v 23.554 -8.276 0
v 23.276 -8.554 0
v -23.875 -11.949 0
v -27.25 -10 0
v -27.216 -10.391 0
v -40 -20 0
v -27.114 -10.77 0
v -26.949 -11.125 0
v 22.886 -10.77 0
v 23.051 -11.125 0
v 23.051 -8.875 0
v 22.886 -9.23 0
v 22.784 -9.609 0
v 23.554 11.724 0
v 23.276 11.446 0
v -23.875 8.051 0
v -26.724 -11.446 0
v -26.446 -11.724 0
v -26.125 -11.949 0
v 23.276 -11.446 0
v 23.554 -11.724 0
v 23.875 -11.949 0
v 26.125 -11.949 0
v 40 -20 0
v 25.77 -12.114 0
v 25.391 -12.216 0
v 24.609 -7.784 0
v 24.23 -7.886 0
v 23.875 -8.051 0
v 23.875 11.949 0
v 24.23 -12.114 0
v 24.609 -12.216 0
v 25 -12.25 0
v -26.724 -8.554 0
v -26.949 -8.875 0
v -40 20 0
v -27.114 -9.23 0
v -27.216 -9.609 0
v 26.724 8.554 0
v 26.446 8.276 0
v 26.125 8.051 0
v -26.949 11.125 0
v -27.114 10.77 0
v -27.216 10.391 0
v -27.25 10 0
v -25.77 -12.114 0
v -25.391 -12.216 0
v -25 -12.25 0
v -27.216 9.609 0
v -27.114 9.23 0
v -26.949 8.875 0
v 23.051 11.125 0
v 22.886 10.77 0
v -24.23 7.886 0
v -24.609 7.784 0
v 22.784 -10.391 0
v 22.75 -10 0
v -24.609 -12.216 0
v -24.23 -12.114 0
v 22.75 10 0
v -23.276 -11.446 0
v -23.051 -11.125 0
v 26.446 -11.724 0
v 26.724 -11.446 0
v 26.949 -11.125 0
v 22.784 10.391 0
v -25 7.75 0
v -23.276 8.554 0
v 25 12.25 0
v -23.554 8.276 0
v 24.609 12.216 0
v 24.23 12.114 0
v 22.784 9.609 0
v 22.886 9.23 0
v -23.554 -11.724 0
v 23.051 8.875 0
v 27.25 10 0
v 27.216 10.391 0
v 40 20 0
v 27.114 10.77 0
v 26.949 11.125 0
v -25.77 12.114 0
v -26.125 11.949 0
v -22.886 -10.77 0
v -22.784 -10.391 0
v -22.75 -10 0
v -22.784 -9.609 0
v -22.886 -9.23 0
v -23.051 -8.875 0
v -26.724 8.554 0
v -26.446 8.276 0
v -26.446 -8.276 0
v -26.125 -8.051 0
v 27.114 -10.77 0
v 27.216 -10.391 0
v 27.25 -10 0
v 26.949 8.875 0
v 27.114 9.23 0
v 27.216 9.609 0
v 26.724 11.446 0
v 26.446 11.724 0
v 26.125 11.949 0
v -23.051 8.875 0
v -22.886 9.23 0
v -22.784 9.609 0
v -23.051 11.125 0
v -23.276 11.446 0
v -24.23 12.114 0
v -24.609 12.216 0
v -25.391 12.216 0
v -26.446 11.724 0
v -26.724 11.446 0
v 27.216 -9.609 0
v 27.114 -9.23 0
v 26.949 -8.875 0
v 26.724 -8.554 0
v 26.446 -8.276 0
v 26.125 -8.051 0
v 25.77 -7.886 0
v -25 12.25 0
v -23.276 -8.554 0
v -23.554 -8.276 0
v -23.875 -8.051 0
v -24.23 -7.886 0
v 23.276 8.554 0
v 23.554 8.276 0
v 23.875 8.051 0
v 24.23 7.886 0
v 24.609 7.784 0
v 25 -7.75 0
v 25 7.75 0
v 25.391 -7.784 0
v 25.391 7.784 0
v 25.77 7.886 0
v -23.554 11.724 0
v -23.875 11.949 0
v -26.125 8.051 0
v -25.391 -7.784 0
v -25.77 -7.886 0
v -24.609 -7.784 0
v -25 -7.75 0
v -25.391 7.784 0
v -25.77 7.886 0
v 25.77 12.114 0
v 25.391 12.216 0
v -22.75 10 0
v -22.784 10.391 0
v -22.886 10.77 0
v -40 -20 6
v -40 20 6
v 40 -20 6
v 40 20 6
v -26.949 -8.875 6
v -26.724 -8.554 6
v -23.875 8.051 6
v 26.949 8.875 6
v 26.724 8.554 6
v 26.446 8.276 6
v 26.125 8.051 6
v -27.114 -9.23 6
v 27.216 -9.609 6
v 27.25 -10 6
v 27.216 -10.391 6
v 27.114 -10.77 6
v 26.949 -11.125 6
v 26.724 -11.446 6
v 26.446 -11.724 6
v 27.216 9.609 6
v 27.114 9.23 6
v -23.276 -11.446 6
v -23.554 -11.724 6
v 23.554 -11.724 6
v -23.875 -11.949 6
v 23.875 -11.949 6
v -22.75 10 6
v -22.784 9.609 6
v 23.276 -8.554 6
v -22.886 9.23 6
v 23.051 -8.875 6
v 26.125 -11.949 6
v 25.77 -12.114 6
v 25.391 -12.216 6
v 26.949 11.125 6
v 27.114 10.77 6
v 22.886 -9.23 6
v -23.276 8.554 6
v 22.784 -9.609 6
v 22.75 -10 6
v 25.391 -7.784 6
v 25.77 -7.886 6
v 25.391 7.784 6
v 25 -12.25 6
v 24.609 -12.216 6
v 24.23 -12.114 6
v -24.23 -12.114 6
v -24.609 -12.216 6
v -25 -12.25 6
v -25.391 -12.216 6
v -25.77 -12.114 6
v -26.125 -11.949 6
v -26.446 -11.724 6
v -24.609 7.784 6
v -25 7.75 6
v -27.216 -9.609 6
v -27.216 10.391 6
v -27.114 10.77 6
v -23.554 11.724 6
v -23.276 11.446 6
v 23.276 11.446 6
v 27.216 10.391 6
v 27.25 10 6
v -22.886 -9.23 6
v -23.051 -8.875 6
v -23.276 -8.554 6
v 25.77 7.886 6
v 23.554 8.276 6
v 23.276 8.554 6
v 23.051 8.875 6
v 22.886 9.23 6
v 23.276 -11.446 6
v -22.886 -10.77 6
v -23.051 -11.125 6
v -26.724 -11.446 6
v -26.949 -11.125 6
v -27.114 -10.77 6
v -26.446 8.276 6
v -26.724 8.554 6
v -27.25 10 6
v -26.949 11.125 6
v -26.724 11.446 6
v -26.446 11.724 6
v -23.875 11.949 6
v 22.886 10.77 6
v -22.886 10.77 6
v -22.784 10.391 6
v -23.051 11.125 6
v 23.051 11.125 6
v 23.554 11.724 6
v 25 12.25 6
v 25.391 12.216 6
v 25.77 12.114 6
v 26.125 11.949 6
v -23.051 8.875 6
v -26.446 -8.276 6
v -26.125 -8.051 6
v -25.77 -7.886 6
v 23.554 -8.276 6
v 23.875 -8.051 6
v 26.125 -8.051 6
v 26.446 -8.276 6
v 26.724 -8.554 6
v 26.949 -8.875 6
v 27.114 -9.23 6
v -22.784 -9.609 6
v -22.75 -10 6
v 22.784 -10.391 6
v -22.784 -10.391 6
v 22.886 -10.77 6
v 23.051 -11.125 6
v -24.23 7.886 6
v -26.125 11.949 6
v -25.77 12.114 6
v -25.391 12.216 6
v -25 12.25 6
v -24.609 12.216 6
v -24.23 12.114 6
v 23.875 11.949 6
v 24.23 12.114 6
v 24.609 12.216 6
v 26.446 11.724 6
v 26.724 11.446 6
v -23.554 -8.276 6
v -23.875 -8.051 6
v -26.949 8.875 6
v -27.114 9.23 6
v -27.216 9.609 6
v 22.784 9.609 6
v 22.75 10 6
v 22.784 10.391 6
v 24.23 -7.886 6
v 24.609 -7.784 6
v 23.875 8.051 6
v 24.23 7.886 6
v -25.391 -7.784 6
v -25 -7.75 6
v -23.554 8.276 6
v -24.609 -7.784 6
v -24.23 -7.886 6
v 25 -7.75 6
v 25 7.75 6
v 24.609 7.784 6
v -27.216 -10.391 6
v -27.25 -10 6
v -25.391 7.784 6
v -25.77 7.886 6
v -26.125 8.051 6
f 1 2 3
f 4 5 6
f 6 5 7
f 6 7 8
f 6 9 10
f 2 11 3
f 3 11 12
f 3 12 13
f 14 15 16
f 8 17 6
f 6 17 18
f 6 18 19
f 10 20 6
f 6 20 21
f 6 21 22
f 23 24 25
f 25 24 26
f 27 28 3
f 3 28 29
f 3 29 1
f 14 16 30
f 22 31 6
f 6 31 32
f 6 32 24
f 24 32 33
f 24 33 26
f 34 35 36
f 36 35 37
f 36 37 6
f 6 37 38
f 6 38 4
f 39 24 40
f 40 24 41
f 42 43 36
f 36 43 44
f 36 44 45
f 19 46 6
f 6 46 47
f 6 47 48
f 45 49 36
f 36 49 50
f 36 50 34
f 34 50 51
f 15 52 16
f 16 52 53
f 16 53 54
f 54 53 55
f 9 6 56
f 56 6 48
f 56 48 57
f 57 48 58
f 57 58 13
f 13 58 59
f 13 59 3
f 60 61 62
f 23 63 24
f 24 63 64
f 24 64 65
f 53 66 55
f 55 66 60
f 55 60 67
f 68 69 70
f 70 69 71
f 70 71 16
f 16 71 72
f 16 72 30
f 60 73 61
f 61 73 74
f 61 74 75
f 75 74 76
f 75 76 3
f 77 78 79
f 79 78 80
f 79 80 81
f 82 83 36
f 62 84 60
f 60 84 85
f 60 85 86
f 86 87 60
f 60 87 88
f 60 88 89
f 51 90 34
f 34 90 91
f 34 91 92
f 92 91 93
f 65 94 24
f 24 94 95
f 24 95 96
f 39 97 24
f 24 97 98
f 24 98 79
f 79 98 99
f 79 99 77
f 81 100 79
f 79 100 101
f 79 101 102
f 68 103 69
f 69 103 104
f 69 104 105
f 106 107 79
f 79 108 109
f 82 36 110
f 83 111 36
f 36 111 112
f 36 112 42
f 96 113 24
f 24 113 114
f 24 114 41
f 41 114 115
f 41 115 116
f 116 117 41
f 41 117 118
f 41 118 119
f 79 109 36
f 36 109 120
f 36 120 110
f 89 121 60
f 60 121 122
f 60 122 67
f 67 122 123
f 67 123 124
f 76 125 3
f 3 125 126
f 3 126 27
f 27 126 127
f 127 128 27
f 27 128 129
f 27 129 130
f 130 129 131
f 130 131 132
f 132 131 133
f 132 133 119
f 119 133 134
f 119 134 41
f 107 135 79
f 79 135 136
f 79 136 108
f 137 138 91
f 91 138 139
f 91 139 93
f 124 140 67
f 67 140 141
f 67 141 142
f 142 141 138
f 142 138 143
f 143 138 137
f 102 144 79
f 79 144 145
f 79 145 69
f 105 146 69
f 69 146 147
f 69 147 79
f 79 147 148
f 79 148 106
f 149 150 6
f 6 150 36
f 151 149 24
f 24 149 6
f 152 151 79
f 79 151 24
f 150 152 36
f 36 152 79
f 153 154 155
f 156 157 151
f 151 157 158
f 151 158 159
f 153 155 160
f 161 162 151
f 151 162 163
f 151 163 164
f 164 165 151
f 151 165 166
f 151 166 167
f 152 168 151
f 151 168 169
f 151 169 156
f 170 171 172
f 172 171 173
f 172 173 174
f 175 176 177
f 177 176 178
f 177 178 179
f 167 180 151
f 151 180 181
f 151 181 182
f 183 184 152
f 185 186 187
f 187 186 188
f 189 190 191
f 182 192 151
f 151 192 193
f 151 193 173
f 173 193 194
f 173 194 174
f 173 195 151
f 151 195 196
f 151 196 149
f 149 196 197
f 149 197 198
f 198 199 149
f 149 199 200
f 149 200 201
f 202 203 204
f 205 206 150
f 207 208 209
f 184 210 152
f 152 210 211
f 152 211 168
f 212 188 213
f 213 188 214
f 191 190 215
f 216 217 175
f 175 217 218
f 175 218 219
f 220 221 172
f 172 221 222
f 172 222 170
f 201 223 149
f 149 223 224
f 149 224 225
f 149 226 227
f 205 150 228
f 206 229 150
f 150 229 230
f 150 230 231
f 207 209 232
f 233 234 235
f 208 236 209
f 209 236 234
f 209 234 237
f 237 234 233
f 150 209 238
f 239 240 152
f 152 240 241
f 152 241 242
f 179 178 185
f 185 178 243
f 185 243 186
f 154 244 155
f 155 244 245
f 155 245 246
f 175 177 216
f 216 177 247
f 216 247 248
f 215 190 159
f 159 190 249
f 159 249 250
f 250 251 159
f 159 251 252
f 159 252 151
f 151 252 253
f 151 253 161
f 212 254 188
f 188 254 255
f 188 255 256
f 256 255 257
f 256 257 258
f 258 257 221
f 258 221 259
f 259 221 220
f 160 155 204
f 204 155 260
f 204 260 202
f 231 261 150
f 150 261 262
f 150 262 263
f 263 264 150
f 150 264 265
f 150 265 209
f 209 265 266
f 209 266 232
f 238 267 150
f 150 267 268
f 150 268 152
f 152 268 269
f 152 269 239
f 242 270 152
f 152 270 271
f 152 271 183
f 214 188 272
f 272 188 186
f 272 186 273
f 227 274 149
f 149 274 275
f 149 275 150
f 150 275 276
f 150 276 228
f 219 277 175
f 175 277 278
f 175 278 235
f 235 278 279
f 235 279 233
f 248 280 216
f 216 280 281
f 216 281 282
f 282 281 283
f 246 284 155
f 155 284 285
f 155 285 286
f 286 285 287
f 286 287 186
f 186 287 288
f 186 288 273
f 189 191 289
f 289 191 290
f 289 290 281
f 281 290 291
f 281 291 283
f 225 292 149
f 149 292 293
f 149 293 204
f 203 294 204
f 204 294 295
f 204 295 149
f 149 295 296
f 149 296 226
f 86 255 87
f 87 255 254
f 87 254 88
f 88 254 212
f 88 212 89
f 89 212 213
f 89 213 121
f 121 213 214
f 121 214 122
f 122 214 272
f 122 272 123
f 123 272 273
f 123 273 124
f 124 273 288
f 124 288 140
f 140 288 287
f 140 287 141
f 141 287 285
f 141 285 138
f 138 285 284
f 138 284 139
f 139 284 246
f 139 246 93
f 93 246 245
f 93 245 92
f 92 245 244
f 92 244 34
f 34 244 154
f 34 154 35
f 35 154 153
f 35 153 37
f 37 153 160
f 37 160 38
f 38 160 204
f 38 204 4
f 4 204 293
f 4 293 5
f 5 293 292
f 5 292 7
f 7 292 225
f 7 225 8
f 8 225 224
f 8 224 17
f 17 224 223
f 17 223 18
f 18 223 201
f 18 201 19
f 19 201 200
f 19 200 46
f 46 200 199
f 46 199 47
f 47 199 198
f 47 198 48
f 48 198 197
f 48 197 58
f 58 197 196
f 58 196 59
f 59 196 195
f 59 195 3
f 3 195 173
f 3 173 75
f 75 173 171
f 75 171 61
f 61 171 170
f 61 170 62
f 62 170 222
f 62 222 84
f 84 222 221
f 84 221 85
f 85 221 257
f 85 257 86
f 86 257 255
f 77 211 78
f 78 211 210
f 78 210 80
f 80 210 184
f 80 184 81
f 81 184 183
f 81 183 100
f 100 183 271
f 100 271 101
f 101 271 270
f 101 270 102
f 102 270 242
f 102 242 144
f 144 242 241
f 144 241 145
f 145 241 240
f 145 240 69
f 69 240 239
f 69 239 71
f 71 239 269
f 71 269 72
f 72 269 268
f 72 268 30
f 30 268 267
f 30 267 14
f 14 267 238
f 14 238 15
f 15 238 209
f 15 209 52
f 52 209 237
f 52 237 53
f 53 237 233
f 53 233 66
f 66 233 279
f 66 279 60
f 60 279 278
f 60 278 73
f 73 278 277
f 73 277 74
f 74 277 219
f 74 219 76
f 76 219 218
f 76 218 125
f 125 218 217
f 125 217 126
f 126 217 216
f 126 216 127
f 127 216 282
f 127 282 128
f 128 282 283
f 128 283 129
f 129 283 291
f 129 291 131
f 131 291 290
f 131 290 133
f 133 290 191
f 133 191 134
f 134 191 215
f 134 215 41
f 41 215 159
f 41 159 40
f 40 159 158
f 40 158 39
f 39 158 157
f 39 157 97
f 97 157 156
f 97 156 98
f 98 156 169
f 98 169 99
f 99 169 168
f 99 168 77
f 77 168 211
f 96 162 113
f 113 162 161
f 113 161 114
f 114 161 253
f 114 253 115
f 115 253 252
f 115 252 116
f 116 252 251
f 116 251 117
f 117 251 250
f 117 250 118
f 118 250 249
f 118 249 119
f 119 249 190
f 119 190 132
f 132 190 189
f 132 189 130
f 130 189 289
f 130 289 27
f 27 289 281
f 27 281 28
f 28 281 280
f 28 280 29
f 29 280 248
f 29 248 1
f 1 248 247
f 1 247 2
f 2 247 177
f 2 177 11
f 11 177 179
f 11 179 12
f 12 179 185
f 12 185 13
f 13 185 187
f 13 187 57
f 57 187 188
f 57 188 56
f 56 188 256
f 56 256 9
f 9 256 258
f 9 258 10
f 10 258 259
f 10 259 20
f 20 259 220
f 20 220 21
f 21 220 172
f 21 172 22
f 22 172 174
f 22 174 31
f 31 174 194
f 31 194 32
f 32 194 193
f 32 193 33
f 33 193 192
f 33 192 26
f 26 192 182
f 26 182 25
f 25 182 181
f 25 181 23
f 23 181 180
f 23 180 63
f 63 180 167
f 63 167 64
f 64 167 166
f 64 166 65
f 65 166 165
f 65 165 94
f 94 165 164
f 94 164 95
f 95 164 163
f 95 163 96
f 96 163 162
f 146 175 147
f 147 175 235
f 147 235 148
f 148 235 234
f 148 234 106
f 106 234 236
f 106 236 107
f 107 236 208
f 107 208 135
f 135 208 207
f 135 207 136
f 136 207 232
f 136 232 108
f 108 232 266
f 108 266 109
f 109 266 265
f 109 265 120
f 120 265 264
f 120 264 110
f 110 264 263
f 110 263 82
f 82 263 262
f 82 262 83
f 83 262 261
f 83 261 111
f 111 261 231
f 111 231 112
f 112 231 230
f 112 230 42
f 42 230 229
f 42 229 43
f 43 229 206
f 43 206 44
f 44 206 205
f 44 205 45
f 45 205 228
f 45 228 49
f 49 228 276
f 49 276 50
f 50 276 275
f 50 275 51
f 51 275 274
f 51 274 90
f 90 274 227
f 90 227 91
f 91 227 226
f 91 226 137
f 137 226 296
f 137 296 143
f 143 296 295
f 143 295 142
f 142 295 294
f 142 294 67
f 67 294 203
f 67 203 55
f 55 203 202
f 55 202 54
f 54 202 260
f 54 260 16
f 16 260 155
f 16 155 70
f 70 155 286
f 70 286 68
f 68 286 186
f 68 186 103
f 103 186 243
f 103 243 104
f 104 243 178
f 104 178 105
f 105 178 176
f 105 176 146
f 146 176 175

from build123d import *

# Parameters (mm, degrees)
SKETCH_1_W                = 80
SKETCH_1_H                = 40
EXTRUDE_228_DEPTH         = 6
CUT_EXTRUDE_M4_DEPTH      = 46.122056691
CUT_EXTRUDE_M4_DEPTH_BACK = 46.122056691
SKETCH_2_R                = 2.25


with BuildPart() as part:
    # 草图1 → Extrude 228 (new body)
    with BuildSketch(Plane.XY):
        Rectangle(SKETCH_1_W, SKETCH_1_H)
    extrude(amount=EXTRUDE_228_DEPTH)

    # 草图2 → 拼接M4孔 (cut, two sides: drawn at the far end of the back side and taken through both)
    with BuildSketch(Plane.XY.offset(-CUT_EXTRUDE_M4_DEPTH_BACK)):
        with Locations((-25, -10)):
            Circle(SKETCH_2_R)
        with Locations((-25, 10)):
            Circle(SKETCH_2_R)
        with Locations((25, -10)):
            Circle(SKETCH_2_R)
        with Locations((25, 10)):
            Circle(SKETCH_2_R)
    extrude(amount=CUT_EXTRUDE_M4_DEPTH + CUT_EXTRUDE_M4_DEPTH_BACK, mode=Mode.SUBTRACT)


solid = part.part
